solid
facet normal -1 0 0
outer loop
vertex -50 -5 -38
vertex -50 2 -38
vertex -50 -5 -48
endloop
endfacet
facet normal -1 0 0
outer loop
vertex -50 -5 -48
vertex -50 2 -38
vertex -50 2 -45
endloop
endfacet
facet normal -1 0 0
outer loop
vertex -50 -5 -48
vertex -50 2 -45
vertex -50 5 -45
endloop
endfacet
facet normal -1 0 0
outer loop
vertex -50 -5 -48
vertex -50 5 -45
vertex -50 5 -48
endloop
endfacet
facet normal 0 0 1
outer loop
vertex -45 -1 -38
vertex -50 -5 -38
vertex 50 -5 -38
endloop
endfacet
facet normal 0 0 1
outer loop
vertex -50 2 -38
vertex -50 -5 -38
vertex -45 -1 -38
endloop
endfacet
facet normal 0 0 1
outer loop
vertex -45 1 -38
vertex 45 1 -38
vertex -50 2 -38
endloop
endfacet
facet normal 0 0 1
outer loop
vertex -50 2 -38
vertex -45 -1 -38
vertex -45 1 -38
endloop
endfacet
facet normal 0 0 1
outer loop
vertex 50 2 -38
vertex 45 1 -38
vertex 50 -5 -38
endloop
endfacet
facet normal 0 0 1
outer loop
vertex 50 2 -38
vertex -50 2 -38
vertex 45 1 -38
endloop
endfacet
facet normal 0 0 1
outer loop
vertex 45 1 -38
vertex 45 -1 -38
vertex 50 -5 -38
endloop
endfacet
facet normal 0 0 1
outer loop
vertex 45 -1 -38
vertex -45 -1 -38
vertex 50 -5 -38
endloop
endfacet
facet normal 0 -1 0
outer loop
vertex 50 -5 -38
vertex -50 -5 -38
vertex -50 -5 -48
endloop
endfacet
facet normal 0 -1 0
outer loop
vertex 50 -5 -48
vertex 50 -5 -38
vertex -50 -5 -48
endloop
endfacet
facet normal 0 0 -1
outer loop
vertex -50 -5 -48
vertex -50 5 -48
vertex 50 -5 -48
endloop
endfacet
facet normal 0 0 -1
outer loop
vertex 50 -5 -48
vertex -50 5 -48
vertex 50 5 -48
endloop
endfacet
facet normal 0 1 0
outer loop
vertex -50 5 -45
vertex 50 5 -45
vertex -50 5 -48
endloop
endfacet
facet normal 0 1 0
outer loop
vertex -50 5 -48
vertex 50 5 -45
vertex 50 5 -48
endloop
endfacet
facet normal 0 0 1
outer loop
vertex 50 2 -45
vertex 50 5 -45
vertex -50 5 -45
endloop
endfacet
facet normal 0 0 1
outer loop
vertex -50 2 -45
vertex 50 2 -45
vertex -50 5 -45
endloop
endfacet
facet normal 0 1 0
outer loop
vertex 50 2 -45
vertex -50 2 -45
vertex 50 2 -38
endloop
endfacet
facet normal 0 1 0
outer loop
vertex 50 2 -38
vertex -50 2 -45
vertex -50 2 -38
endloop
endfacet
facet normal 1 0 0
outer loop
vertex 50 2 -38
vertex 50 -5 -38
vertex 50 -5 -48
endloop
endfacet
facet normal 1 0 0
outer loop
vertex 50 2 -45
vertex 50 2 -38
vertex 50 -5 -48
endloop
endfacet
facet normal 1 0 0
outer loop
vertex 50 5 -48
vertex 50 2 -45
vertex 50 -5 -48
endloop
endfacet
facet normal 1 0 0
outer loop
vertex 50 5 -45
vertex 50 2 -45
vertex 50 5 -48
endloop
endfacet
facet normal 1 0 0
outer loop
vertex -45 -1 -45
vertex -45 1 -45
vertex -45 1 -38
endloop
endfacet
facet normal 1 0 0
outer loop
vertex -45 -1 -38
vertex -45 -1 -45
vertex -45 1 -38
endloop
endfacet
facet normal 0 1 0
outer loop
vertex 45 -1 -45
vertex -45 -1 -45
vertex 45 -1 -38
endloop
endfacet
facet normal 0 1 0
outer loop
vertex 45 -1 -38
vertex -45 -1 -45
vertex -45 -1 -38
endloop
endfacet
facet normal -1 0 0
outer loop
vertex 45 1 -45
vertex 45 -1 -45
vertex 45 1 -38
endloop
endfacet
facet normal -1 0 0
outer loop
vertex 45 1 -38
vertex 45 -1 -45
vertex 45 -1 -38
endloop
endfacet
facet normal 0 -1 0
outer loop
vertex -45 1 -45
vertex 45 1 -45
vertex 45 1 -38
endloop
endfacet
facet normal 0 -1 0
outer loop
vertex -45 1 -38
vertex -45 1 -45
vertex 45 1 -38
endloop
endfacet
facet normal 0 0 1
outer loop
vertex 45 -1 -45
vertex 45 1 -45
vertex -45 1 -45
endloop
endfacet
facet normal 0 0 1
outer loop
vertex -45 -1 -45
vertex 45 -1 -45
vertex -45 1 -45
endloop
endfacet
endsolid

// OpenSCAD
// Author: Peter Withers
// Creation date: 2016-02-27 15:41

glassHeight = 90;
glassWidth = 90;
glassThickness = 2;
glassGap = 1;
guideHeight = 10;
guideLength = 100;
guideWidth = 10;

module makeGuide(){
    difference(){
        translate([0,glassWidth / 2 - 2, 0]) cube([guideLength, guideWidth, guideHeight], true);
        glassPlates();
	translate([0,0,glassGap + ((glassThickness + 20) / 2)]) cube([glassHeight + 20, glassWidth, 20], true);
    };
}

module glassPlates() {
	cube([glassHeight,glassWidth,glassThickness],true);
	translate([0, 0, glassGap + glassThickness]) cube([glassHeight, glassWidth, glassThickness],true);
}

module makeNonPrintedParts() {
	#glassPlates();
        makeGuide();
}

module makePrintedParts() {
	rotate([-90,0,0]) makeGuide();
}

//makeNonPrintedParts();
makePrintedParts();
